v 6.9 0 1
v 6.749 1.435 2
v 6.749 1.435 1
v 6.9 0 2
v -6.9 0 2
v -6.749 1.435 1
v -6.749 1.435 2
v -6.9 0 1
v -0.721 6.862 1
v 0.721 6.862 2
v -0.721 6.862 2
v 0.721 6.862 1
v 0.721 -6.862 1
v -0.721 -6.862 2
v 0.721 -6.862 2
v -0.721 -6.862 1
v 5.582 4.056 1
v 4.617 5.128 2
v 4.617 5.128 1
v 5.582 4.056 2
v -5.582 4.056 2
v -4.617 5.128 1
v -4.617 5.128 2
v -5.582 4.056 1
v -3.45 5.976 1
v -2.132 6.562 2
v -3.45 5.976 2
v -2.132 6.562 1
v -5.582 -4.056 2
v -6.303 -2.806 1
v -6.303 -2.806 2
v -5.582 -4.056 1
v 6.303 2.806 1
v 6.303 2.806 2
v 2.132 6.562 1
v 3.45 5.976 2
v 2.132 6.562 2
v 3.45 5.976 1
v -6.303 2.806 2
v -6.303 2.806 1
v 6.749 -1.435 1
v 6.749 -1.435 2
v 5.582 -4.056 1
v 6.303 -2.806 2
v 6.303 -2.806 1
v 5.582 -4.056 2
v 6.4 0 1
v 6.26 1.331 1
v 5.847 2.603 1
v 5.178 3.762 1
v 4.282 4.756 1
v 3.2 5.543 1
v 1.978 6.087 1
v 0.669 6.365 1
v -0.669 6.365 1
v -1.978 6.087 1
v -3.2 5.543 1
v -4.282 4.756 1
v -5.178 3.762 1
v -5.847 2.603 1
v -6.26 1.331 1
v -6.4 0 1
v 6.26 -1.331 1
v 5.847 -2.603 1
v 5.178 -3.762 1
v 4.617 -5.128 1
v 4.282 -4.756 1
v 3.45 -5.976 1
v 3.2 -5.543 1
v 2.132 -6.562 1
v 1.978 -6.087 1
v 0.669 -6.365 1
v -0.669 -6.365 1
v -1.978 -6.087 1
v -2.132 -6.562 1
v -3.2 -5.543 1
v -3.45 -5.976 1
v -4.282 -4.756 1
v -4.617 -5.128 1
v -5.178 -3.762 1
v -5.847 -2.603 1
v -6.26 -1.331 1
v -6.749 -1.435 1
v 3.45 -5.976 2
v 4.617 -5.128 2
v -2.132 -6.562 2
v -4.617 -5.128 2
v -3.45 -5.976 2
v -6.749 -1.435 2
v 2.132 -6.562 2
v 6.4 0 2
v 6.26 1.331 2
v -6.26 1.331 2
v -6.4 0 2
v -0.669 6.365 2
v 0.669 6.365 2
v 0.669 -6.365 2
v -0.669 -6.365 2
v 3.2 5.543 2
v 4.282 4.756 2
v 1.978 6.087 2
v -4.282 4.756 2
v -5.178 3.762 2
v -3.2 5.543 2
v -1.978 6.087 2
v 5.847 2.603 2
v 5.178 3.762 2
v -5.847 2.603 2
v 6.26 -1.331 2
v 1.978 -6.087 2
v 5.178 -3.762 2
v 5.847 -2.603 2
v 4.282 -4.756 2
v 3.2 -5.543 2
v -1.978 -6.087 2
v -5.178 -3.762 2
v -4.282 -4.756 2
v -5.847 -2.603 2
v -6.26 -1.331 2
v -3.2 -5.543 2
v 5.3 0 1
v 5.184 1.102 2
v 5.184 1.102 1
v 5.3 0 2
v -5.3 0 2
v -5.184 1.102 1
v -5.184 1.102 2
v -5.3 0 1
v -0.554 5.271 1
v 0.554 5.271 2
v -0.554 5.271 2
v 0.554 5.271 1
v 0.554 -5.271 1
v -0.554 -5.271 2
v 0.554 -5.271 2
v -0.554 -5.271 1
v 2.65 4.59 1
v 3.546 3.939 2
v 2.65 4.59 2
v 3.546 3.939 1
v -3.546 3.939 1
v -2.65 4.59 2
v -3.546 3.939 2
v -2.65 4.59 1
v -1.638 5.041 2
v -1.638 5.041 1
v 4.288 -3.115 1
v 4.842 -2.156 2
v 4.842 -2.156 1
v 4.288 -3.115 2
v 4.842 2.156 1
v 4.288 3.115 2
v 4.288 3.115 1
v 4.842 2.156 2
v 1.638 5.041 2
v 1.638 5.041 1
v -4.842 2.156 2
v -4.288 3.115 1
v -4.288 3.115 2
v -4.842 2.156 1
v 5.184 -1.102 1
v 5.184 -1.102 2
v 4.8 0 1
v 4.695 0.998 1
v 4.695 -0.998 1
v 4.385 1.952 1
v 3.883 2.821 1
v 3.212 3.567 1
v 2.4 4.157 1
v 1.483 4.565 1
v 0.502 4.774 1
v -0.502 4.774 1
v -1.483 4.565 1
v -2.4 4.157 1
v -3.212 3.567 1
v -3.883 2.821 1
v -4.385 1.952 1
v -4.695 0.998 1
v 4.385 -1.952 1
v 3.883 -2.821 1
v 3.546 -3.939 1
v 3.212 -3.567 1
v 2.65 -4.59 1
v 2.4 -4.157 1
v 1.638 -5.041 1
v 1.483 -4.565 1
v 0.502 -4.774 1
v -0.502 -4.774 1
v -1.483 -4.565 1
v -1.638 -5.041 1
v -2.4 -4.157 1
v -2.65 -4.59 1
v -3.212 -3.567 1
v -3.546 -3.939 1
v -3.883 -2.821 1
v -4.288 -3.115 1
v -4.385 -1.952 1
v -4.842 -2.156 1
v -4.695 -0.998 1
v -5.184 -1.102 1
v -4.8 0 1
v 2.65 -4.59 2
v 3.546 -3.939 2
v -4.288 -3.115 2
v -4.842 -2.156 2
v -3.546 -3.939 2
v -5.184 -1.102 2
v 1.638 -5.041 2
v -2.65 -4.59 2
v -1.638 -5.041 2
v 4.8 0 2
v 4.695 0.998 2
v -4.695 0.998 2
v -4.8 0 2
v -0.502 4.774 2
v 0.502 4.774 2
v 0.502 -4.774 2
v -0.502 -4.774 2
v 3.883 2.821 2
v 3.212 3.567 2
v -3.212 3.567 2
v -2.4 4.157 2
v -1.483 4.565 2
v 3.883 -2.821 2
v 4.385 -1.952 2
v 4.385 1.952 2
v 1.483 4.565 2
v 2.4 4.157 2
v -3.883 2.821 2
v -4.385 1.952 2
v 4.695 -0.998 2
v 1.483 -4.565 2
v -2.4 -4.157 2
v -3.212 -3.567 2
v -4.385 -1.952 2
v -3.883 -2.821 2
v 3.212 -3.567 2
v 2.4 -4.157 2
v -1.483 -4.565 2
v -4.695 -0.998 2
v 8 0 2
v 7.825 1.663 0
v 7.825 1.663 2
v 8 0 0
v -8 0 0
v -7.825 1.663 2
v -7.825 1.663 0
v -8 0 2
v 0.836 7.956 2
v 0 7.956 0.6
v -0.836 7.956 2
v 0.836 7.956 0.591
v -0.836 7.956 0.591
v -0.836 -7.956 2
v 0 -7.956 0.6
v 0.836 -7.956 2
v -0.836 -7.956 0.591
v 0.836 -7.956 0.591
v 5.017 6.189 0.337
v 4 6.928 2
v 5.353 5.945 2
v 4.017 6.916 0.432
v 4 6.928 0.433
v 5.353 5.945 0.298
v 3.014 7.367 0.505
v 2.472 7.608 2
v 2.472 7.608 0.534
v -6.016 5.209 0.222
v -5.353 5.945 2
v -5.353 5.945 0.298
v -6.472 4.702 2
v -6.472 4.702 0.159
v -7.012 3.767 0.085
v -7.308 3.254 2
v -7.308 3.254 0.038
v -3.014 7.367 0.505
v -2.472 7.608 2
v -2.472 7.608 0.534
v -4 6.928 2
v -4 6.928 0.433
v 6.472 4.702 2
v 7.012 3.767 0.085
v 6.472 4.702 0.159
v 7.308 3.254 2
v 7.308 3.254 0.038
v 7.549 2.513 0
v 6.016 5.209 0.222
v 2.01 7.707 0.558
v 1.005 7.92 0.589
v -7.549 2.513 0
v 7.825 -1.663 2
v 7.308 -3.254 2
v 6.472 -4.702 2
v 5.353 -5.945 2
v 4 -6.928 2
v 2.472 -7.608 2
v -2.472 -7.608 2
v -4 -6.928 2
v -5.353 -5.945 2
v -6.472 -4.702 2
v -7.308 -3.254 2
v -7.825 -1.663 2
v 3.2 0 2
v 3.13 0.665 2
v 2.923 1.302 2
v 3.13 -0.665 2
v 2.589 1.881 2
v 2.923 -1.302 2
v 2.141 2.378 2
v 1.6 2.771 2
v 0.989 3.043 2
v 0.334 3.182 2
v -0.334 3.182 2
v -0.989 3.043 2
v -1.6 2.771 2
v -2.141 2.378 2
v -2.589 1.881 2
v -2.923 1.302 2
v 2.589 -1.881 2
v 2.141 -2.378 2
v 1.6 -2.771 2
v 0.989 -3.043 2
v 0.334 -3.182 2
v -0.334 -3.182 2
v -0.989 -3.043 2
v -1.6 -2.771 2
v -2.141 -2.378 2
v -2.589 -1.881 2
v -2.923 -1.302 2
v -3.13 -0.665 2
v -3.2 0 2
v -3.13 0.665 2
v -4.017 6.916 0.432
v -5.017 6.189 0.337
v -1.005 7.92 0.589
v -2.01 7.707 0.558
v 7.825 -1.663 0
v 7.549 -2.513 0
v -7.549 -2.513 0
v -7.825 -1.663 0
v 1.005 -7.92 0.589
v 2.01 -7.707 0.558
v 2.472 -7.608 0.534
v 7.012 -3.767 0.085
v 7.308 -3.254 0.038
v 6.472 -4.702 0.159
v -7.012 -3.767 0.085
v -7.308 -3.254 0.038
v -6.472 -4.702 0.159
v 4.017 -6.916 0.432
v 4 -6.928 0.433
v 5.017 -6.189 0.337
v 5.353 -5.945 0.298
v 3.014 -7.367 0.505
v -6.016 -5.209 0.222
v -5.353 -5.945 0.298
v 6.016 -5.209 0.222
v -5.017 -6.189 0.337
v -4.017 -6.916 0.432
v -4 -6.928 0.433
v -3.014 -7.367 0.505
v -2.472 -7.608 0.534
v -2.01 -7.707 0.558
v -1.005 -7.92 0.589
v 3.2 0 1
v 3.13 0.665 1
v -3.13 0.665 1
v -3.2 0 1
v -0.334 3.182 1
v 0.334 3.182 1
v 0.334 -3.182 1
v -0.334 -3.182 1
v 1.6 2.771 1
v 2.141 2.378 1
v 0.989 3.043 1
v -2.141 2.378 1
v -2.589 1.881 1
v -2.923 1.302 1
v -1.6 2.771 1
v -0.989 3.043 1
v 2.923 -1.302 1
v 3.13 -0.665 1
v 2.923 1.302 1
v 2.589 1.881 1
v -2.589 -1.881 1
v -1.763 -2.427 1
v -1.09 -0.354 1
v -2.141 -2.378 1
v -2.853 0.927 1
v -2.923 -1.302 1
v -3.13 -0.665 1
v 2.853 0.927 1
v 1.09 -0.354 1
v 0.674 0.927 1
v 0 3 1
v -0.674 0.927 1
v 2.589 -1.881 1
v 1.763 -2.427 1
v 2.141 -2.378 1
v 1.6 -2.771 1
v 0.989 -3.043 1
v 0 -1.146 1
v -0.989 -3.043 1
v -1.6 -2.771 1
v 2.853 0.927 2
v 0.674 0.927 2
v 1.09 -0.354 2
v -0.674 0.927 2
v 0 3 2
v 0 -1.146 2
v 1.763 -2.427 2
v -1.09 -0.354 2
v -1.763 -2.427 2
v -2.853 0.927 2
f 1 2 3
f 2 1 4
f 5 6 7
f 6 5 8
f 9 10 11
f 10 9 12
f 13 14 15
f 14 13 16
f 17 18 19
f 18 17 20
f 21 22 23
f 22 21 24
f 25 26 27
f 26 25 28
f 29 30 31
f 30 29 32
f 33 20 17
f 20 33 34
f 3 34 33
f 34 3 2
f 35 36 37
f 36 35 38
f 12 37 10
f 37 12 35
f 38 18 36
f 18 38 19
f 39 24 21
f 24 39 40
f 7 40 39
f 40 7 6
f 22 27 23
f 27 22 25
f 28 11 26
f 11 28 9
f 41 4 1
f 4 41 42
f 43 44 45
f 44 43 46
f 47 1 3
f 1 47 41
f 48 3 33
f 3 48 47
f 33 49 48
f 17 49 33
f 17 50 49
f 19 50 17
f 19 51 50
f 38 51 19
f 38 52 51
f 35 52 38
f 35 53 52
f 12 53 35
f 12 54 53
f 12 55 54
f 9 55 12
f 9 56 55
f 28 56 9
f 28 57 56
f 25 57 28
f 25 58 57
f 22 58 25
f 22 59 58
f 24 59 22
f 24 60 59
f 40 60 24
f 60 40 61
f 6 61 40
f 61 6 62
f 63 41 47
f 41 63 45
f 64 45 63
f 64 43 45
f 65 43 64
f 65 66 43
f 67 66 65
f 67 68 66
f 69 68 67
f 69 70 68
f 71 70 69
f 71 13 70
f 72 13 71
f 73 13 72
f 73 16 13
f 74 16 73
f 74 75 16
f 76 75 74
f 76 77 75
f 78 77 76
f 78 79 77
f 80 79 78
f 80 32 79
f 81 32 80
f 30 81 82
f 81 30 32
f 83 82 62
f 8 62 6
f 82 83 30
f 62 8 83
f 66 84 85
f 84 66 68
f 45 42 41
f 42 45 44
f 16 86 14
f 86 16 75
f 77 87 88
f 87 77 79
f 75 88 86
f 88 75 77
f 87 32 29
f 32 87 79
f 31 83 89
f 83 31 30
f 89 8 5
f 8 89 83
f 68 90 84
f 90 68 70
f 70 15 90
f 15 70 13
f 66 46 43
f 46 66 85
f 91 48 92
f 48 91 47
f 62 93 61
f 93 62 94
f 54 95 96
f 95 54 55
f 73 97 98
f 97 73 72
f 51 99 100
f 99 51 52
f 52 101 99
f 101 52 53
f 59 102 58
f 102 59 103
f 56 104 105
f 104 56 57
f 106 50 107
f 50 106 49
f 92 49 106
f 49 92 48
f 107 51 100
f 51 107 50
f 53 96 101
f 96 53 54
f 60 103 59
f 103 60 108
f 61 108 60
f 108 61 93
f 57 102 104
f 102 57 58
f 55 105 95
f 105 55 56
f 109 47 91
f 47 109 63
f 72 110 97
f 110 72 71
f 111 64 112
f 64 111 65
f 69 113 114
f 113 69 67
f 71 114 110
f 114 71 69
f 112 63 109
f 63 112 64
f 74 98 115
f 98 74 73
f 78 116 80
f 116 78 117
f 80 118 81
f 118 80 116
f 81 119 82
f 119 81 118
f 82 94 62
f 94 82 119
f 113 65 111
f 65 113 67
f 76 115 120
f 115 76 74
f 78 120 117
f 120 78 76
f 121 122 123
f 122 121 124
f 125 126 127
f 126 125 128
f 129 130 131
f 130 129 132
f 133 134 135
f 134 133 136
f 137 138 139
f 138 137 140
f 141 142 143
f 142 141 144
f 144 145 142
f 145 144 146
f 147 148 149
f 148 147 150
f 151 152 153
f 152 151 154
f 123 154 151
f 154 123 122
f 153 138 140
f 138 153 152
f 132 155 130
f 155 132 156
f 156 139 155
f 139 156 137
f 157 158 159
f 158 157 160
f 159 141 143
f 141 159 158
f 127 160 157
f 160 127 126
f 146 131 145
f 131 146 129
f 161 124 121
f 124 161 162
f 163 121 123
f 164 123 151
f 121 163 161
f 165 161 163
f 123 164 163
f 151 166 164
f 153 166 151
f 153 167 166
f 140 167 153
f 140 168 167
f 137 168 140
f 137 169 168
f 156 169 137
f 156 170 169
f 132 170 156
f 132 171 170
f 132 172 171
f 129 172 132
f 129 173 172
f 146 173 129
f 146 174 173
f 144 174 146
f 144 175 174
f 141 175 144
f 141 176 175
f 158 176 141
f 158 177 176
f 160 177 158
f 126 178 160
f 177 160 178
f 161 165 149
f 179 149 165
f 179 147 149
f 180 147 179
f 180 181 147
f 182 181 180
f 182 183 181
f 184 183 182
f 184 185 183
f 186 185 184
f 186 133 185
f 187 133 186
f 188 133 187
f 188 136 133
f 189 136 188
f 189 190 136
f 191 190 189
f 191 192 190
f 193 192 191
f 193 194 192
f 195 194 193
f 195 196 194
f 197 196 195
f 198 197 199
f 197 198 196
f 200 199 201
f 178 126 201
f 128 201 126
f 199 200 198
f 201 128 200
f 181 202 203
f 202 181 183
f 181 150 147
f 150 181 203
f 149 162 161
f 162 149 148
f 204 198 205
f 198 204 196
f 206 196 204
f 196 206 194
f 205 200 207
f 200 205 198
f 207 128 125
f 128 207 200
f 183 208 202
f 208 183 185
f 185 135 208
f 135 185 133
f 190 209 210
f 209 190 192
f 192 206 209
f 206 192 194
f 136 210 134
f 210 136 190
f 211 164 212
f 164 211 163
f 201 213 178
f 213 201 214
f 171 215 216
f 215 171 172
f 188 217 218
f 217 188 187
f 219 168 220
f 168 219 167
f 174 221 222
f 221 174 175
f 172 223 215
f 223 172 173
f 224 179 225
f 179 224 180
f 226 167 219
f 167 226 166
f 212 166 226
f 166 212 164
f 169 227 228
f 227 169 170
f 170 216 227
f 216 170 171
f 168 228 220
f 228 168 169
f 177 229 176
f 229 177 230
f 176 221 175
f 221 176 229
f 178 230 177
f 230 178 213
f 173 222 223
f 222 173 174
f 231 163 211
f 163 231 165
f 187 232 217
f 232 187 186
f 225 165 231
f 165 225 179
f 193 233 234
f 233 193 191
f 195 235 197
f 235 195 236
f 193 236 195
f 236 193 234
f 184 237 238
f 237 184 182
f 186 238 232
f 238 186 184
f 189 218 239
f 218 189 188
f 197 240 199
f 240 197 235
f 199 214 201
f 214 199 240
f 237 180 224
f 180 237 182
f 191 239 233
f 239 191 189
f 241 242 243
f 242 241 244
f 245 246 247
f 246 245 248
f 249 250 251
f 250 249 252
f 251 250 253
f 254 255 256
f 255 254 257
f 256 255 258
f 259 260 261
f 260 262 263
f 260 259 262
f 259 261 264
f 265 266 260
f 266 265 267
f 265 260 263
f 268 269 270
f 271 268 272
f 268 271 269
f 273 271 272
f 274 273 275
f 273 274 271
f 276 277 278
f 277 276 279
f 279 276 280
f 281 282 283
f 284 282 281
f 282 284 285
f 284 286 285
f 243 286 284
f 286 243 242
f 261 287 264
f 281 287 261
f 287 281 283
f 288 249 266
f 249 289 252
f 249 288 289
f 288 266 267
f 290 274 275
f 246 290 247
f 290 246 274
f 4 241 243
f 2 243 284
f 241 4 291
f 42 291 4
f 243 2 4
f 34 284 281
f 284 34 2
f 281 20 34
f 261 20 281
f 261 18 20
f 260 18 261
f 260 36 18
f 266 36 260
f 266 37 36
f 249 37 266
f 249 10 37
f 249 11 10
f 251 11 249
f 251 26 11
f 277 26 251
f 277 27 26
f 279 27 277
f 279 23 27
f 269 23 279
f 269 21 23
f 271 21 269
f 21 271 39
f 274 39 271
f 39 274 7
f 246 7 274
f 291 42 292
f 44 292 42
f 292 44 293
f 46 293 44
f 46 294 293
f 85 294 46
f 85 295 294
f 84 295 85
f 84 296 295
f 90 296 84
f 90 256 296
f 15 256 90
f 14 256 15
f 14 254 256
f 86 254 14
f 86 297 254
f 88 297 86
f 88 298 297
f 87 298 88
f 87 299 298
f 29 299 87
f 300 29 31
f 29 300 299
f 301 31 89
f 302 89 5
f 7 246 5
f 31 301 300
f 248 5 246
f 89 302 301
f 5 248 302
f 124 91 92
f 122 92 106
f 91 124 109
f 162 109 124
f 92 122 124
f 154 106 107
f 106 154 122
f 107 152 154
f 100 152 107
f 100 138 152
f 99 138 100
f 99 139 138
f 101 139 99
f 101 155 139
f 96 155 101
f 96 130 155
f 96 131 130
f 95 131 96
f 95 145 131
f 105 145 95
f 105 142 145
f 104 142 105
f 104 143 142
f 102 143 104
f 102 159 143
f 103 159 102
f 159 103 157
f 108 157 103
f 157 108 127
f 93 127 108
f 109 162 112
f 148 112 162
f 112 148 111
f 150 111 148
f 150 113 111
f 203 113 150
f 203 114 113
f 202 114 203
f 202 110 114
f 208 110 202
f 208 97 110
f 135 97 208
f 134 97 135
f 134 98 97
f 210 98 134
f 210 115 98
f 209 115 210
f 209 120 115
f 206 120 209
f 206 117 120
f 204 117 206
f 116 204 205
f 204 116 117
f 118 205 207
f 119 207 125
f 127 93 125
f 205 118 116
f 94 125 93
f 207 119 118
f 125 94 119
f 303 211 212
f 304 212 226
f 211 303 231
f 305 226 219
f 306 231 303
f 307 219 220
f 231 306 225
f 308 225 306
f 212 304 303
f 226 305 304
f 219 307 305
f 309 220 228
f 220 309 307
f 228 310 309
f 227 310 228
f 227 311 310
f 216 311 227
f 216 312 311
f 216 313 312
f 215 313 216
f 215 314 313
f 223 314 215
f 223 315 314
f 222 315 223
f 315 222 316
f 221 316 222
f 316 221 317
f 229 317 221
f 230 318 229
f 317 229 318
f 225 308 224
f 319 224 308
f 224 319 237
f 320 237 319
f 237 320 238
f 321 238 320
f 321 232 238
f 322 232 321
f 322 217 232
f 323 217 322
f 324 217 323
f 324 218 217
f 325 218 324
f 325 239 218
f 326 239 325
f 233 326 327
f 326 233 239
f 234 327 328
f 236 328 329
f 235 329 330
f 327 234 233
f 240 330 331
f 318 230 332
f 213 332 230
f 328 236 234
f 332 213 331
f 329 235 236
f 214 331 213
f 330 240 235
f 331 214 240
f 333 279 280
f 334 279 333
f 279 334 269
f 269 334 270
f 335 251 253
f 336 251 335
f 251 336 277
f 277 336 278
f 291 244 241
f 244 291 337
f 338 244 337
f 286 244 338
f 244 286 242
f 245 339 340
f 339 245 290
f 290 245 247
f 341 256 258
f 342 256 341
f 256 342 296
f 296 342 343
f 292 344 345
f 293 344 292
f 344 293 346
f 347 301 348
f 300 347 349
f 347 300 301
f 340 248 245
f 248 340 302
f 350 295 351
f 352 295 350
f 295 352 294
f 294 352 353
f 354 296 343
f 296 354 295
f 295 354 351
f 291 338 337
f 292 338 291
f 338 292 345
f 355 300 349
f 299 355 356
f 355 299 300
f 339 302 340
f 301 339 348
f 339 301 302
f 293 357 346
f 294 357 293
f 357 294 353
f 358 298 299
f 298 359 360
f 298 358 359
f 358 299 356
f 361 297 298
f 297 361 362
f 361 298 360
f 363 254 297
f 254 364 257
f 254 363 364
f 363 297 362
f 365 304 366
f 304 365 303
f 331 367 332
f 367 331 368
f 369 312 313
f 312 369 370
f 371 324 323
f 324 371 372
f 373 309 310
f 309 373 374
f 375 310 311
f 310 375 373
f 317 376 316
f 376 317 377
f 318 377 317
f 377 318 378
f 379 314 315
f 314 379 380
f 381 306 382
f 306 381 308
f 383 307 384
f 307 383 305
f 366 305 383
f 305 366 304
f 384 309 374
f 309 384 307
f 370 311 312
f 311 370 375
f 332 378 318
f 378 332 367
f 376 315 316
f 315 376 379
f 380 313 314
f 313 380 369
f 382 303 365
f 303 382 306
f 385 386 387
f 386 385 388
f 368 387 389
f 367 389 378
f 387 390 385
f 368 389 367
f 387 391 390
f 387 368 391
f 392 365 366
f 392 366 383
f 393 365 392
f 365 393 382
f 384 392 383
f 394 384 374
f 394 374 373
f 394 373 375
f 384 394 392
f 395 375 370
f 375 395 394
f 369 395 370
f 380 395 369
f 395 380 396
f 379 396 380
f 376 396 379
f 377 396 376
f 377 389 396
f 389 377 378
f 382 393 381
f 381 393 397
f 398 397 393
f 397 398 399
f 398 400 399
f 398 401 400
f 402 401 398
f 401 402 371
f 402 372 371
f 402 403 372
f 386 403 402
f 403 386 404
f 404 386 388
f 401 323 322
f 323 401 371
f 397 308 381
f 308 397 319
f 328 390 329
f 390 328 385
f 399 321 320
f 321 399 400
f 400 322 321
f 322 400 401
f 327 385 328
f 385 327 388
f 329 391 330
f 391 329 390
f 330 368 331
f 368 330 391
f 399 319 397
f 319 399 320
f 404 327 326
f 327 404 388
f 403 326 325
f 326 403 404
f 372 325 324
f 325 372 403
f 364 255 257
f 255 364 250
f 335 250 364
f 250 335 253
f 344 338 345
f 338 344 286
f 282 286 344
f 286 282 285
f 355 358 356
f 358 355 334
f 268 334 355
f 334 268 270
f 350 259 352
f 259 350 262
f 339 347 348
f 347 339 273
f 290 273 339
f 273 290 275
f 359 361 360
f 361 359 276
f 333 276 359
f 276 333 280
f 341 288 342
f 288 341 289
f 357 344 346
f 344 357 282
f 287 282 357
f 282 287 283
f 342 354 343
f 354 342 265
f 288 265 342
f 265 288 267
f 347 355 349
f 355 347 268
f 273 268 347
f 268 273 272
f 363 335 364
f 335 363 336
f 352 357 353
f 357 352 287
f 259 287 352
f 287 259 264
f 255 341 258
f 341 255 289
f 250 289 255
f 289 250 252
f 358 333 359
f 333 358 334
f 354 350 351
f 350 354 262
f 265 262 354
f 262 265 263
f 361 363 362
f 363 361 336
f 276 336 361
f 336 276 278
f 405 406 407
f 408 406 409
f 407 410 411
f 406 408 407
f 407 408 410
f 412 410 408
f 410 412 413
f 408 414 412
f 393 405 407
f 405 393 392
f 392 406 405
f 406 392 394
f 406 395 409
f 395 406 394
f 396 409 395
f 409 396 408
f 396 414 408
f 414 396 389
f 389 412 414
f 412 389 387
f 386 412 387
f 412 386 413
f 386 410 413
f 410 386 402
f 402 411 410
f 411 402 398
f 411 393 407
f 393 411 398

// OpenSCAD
// file: shape_pentagram.scad
/**
* shape_pentagram.scad
*
* @copyright Justin Lin, 2017
* @license https://opensource.org/licenses/lgpl-3.0.html
*
* @see https://openhome.cc/eGossip/OpenSCAD/lib2x-shape_ellipse.html
*
**/

function shape_pentagram(r) =
    [
        [0, 1], [-0.224514, 0.309017], 
        [-0.951057, 0.309017], [-0.363271, -0.118034], 
        [-0.587785, -0.809017], [0, -0.381966], 
        [0.587785, -0.809017], [0.363271, -0.118034], 
        [0.951057, 0.309017], [0.224514, 0.309017]
    ] * r;
// main file
WallThickness = 2;
BaseDiameter = 16;
PentagramSize = 3;
BottomRemovalRatio = 6;


include <shape_pentagram.scad>;


module CaptainAmericaShield() {
translate([0, 0, WallThickness/2])    
linear_extrude(height = WallThickness/2, center = false, convexity = 10, twist = 0)
polygon(shape_pentagram(PentagramSize));


difference() {
    cylinder(h=WallThickness, d=BaseDiameter, center=false, $fn=30);
    
    translate([0, 0, WallThickness/2])
    difference() {
        cylinder(h=WallThickness, d=BaseDiameter/5*4+1, center=false, $fn=30);
        cylinder(h=WallThickness, d=BaseDiameter/5*4, center=false, $fn=30);
    }    

    translate([0, 0, WallThickness/2])
    difference() {
        cylinder(h=WallThickness, d=BaseDiameter/5*3+1, center=false, $fn=30);
        cylinder(h=WallThickness, d=BaseDiameter/5*3, center=false, $fn=30);
    }    

    translate([0, 0, WallThickness/2])
        cylinder(h=WallThickness, d=BaseDiameter/5*2, center=false, $fn=30);

    translate([0, BaseDiameter/2, -BaseDiameter*BottomRemovalRatio/2+WallThickness/2-0.4])
    rotate([90, 0, 0])
    cylinder(h=BaseDiameter, d=BottomRemovalRatio*BaseDiameter, center=false, $fn=300);

    }


}


CaptainAmericaShield();
